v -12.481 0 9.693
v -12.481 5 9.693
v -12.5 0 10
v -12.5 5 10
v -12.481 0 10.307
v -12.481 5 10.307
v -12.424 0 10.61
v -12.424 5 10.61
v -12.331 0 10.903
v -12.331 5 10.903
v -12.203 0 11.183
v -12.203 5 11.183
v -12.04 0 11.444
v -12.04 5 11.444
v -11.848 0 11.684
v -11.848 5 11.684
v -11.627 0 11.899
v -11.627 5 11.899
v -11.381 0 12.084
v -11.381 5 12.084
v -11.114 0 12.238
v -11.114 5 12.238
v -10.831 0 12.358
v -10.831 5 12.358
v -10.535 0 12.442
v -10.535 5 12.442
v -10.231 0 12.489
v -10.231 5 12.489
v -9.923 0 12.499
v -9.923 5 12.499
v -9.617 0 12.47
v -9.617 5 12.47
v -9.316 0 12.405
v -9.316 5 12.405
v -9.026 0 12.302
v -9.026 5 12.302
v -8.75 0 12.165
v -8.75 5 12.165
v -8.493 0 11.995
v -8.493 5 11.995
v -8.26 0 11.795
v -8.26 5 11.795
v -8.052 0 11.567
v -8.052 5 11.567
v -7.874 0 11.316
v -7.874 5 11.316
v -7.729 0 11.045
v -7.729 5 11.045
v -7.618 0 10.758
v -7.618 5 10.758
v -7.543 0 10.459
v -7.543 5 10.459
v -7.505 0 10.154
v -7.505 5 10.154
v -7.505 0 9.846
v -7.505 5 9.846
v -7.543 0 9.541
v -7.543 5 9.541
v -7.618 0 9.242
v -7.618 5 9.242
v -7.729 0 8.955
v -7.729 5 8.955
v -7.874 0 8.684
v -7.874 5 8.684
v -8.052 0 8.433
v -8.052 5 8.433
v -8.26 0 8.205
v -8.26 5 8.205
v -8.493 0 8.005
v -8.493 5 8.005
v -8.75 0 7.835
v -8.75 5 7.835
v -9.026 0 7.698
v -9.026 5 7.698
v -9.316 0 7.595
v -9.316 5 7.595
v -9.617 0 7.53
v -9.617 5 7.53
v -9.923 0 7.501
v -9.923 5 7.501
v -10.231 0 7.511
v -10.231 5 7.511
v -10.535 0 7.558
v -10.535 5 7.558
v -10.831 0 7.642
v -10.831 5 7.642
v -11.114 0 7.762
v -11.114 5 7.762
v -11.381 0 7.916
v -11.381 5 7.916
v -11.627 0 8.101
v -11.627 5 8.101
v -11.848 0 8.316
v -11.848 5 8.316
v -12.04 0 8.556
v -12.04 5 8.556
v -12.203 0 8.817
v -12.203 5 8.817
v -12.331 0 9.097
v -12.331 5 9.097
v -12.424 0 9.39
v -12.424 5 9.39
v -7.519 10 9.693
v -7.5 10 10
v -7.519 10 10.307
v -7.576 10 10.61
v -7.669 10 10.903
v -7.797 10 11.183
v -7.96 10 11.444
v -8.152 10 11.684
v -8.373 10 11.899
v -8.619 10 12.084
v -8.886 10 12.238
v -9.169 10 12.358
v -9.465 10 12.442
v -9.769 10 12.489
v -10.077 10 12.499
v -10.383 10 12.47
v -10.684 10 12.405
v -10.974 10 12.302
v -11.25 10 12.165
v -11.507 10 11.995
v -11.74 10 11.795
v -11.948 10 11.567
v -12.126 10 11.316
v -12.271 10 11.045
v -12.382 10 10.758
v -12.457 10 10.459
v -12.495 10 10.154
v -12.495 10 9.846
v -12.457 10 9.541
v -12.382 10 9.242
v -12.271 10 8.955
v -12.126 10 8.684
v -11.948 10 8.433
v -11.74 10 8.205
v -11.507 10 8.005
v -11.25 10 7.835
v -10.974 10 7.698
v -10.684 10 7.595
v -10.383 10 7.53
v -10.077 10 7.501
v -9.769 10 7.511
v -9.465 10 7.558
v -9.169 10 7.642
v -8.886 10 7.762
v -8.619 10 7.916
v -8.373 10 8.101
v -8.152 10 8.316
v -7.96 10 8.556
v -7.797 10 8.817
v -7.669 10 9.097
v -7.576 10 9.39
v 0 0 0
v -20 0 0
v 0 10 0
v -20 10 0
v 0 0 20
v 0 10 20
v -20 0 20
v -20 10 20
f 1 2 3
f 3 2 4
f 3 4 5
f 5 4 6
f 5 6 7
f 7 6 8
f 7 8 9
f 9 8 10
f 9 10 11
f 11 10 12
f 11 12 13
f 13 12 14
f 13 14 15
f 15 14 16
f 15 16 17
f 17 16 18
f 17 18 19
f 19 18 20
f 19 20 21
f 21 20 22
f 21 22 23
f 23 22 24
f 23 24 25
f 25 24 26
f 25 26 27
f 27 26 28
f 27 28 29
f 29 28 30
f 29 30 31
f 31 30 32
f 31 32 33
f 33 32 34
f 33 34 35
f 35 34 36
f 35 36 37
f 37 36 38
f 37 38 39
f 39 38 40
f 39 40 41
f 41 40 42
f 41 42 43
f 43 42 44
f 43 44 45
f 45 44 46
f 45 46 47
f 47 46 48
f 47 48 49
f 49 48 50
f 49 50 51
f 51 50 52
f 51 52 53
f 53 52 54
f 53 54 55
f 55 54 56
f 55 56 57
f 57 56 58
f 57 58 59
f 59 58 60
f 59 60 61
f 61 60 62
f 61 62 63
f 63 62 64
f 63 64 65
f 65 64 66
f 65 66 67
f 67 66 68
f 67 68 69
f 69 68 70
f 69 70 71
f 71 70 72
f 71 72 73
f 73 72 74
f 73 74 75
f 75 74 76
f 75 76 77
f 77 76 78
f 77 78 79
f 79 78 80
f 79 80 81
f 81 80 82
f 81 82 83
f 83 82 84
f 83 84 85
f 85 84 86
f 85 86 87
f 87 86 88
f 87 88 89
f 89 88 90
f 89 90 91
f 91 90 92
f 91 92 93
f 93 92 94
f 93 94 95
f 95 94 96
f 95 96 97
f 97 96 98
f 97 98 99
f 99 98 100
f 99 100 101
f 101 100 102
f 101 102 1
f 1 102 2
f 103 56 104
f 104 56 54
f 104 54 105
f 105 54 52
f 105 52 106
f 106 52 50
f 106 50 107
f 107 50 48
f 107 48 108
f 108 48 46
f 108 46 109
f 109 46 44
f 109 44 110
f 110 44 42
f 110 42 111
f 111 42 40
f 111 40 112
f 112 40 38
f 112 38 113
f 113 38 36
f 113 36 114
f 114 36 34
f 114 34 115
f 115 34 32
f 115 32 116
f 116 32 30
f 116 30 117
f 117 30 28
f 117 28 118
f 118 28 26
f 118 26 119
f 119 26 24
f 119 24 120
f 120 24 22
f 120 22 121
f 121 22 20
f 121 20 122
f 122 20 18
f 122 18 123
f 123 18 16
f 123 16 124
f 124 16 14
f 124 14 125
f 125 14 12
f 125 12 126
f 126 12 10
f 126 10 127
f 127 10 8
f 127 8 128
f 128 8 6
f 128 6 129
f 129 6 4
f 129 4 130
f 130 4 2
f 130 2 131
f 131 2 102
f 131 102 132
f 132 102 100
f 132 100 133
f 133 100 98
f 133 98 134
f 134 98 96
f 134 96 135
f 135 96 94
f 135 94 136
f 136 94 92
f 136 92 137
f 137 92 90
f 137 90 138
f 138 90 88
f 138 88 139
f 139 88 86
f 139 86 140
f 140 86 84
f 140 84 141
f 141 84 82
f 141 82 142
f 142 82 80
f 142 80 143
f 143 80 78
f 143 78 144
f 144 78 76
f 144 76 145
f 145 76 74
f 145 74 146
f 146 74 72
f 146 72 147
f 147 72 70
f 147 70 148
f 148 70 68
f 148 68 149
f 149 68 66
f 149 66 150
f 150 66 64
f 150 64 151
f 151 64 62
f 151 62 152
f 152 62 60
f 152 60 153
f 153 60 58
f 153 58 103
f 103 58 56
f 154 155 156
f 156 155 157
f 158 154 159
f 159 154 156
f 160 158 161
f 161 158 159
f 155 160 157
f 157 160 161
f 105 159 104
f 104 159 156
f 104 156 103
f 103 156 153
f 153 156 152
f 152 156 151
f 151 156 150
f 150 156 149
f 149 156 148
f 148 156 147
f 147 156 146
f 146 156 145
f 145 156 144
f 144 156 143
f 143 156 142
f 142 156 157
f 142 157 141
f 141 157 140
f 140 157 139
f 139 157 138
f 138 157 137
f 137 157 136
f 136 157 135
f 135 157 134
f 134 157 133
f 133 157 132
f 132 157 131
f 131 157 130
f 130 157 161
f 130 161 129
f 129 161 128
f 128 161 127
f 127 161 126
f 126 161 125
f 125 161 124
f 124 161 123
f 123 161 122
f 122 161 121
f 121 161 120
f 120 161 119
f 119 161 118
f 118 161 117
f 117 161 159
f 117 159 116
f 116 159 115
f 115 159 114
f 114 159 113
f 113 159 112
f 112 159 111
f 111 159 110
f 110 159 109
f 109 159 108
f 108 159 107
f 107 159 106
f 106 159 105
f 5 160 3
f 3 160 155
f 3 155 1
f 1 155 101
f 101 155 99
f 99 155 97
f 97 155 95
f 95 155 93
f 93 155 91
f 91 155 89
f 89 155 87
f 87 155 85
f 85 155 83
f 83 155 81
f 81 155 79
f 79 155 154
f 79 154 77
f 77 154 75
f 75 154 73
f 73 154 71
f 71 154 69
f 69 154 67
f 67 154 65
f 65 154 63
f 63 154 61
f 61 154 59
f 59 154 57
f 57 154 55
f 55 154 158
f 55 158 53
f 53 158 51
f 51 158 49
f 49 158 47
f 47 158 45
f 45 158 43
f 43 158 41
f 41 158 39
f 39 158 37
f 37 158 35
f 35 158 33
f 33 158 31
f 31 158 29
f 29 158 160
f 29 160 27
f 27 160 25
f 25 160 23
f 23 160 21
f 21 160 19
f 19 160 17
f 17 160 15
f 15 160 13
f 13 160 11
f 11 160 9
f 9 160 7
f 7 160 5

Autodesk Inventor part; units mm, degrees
ref_plane "YZ Plane" through (0, 0, 0) normal (1, 0, 0) x (0, 1, 0)
ref_plane "XZ Plane" through (0, 0, 0) normal (0, 1, 0) x (-1, 0, 0)
ref_plane "XY Plane" through (0, 0, 0) normal (0, 0, 1) x (1, 0, 0)
sketch "Sketch1" plane through (0, 0, 0) normal (0, 1, 0) x (-1, 0, 0)
  line L0 (0, 0) -> (20, 0)
  line L1 (20, 0) -> (20, 20)
  line L2 (20, 20) -> (0, 20)
  line L3 (0, 20) -> (0, 0)
  dimension "d0" = 20
  dimension "d1" = 20
extrude "Extrusion1" add sketch "Sketch1" along normal blind 10
sketch "Sketch2" plane through (0, 10, 0) normal (0, 1, 0) x (1, 0, 0)
  line L0 (0, 0) -> (-20, 0) construction
  line L1 (-10, 0) -> (-10, -20) construction
  line L2 (-20, -20) -> (0, -20) construction
  line L3 (-20, 0) -> (-20, -20) construction
  line L4 (-20, -10) -> (0, -10) construction
  line L5 (0, -20) -> (0, 0) construction
  circle A0 centre (-10, -10) radius 2.5
  dimension "d4" = 5
extrude "Extrusion3" cut sketch "Sketch2" against normal blind 20
properties part number "Insert Test"
